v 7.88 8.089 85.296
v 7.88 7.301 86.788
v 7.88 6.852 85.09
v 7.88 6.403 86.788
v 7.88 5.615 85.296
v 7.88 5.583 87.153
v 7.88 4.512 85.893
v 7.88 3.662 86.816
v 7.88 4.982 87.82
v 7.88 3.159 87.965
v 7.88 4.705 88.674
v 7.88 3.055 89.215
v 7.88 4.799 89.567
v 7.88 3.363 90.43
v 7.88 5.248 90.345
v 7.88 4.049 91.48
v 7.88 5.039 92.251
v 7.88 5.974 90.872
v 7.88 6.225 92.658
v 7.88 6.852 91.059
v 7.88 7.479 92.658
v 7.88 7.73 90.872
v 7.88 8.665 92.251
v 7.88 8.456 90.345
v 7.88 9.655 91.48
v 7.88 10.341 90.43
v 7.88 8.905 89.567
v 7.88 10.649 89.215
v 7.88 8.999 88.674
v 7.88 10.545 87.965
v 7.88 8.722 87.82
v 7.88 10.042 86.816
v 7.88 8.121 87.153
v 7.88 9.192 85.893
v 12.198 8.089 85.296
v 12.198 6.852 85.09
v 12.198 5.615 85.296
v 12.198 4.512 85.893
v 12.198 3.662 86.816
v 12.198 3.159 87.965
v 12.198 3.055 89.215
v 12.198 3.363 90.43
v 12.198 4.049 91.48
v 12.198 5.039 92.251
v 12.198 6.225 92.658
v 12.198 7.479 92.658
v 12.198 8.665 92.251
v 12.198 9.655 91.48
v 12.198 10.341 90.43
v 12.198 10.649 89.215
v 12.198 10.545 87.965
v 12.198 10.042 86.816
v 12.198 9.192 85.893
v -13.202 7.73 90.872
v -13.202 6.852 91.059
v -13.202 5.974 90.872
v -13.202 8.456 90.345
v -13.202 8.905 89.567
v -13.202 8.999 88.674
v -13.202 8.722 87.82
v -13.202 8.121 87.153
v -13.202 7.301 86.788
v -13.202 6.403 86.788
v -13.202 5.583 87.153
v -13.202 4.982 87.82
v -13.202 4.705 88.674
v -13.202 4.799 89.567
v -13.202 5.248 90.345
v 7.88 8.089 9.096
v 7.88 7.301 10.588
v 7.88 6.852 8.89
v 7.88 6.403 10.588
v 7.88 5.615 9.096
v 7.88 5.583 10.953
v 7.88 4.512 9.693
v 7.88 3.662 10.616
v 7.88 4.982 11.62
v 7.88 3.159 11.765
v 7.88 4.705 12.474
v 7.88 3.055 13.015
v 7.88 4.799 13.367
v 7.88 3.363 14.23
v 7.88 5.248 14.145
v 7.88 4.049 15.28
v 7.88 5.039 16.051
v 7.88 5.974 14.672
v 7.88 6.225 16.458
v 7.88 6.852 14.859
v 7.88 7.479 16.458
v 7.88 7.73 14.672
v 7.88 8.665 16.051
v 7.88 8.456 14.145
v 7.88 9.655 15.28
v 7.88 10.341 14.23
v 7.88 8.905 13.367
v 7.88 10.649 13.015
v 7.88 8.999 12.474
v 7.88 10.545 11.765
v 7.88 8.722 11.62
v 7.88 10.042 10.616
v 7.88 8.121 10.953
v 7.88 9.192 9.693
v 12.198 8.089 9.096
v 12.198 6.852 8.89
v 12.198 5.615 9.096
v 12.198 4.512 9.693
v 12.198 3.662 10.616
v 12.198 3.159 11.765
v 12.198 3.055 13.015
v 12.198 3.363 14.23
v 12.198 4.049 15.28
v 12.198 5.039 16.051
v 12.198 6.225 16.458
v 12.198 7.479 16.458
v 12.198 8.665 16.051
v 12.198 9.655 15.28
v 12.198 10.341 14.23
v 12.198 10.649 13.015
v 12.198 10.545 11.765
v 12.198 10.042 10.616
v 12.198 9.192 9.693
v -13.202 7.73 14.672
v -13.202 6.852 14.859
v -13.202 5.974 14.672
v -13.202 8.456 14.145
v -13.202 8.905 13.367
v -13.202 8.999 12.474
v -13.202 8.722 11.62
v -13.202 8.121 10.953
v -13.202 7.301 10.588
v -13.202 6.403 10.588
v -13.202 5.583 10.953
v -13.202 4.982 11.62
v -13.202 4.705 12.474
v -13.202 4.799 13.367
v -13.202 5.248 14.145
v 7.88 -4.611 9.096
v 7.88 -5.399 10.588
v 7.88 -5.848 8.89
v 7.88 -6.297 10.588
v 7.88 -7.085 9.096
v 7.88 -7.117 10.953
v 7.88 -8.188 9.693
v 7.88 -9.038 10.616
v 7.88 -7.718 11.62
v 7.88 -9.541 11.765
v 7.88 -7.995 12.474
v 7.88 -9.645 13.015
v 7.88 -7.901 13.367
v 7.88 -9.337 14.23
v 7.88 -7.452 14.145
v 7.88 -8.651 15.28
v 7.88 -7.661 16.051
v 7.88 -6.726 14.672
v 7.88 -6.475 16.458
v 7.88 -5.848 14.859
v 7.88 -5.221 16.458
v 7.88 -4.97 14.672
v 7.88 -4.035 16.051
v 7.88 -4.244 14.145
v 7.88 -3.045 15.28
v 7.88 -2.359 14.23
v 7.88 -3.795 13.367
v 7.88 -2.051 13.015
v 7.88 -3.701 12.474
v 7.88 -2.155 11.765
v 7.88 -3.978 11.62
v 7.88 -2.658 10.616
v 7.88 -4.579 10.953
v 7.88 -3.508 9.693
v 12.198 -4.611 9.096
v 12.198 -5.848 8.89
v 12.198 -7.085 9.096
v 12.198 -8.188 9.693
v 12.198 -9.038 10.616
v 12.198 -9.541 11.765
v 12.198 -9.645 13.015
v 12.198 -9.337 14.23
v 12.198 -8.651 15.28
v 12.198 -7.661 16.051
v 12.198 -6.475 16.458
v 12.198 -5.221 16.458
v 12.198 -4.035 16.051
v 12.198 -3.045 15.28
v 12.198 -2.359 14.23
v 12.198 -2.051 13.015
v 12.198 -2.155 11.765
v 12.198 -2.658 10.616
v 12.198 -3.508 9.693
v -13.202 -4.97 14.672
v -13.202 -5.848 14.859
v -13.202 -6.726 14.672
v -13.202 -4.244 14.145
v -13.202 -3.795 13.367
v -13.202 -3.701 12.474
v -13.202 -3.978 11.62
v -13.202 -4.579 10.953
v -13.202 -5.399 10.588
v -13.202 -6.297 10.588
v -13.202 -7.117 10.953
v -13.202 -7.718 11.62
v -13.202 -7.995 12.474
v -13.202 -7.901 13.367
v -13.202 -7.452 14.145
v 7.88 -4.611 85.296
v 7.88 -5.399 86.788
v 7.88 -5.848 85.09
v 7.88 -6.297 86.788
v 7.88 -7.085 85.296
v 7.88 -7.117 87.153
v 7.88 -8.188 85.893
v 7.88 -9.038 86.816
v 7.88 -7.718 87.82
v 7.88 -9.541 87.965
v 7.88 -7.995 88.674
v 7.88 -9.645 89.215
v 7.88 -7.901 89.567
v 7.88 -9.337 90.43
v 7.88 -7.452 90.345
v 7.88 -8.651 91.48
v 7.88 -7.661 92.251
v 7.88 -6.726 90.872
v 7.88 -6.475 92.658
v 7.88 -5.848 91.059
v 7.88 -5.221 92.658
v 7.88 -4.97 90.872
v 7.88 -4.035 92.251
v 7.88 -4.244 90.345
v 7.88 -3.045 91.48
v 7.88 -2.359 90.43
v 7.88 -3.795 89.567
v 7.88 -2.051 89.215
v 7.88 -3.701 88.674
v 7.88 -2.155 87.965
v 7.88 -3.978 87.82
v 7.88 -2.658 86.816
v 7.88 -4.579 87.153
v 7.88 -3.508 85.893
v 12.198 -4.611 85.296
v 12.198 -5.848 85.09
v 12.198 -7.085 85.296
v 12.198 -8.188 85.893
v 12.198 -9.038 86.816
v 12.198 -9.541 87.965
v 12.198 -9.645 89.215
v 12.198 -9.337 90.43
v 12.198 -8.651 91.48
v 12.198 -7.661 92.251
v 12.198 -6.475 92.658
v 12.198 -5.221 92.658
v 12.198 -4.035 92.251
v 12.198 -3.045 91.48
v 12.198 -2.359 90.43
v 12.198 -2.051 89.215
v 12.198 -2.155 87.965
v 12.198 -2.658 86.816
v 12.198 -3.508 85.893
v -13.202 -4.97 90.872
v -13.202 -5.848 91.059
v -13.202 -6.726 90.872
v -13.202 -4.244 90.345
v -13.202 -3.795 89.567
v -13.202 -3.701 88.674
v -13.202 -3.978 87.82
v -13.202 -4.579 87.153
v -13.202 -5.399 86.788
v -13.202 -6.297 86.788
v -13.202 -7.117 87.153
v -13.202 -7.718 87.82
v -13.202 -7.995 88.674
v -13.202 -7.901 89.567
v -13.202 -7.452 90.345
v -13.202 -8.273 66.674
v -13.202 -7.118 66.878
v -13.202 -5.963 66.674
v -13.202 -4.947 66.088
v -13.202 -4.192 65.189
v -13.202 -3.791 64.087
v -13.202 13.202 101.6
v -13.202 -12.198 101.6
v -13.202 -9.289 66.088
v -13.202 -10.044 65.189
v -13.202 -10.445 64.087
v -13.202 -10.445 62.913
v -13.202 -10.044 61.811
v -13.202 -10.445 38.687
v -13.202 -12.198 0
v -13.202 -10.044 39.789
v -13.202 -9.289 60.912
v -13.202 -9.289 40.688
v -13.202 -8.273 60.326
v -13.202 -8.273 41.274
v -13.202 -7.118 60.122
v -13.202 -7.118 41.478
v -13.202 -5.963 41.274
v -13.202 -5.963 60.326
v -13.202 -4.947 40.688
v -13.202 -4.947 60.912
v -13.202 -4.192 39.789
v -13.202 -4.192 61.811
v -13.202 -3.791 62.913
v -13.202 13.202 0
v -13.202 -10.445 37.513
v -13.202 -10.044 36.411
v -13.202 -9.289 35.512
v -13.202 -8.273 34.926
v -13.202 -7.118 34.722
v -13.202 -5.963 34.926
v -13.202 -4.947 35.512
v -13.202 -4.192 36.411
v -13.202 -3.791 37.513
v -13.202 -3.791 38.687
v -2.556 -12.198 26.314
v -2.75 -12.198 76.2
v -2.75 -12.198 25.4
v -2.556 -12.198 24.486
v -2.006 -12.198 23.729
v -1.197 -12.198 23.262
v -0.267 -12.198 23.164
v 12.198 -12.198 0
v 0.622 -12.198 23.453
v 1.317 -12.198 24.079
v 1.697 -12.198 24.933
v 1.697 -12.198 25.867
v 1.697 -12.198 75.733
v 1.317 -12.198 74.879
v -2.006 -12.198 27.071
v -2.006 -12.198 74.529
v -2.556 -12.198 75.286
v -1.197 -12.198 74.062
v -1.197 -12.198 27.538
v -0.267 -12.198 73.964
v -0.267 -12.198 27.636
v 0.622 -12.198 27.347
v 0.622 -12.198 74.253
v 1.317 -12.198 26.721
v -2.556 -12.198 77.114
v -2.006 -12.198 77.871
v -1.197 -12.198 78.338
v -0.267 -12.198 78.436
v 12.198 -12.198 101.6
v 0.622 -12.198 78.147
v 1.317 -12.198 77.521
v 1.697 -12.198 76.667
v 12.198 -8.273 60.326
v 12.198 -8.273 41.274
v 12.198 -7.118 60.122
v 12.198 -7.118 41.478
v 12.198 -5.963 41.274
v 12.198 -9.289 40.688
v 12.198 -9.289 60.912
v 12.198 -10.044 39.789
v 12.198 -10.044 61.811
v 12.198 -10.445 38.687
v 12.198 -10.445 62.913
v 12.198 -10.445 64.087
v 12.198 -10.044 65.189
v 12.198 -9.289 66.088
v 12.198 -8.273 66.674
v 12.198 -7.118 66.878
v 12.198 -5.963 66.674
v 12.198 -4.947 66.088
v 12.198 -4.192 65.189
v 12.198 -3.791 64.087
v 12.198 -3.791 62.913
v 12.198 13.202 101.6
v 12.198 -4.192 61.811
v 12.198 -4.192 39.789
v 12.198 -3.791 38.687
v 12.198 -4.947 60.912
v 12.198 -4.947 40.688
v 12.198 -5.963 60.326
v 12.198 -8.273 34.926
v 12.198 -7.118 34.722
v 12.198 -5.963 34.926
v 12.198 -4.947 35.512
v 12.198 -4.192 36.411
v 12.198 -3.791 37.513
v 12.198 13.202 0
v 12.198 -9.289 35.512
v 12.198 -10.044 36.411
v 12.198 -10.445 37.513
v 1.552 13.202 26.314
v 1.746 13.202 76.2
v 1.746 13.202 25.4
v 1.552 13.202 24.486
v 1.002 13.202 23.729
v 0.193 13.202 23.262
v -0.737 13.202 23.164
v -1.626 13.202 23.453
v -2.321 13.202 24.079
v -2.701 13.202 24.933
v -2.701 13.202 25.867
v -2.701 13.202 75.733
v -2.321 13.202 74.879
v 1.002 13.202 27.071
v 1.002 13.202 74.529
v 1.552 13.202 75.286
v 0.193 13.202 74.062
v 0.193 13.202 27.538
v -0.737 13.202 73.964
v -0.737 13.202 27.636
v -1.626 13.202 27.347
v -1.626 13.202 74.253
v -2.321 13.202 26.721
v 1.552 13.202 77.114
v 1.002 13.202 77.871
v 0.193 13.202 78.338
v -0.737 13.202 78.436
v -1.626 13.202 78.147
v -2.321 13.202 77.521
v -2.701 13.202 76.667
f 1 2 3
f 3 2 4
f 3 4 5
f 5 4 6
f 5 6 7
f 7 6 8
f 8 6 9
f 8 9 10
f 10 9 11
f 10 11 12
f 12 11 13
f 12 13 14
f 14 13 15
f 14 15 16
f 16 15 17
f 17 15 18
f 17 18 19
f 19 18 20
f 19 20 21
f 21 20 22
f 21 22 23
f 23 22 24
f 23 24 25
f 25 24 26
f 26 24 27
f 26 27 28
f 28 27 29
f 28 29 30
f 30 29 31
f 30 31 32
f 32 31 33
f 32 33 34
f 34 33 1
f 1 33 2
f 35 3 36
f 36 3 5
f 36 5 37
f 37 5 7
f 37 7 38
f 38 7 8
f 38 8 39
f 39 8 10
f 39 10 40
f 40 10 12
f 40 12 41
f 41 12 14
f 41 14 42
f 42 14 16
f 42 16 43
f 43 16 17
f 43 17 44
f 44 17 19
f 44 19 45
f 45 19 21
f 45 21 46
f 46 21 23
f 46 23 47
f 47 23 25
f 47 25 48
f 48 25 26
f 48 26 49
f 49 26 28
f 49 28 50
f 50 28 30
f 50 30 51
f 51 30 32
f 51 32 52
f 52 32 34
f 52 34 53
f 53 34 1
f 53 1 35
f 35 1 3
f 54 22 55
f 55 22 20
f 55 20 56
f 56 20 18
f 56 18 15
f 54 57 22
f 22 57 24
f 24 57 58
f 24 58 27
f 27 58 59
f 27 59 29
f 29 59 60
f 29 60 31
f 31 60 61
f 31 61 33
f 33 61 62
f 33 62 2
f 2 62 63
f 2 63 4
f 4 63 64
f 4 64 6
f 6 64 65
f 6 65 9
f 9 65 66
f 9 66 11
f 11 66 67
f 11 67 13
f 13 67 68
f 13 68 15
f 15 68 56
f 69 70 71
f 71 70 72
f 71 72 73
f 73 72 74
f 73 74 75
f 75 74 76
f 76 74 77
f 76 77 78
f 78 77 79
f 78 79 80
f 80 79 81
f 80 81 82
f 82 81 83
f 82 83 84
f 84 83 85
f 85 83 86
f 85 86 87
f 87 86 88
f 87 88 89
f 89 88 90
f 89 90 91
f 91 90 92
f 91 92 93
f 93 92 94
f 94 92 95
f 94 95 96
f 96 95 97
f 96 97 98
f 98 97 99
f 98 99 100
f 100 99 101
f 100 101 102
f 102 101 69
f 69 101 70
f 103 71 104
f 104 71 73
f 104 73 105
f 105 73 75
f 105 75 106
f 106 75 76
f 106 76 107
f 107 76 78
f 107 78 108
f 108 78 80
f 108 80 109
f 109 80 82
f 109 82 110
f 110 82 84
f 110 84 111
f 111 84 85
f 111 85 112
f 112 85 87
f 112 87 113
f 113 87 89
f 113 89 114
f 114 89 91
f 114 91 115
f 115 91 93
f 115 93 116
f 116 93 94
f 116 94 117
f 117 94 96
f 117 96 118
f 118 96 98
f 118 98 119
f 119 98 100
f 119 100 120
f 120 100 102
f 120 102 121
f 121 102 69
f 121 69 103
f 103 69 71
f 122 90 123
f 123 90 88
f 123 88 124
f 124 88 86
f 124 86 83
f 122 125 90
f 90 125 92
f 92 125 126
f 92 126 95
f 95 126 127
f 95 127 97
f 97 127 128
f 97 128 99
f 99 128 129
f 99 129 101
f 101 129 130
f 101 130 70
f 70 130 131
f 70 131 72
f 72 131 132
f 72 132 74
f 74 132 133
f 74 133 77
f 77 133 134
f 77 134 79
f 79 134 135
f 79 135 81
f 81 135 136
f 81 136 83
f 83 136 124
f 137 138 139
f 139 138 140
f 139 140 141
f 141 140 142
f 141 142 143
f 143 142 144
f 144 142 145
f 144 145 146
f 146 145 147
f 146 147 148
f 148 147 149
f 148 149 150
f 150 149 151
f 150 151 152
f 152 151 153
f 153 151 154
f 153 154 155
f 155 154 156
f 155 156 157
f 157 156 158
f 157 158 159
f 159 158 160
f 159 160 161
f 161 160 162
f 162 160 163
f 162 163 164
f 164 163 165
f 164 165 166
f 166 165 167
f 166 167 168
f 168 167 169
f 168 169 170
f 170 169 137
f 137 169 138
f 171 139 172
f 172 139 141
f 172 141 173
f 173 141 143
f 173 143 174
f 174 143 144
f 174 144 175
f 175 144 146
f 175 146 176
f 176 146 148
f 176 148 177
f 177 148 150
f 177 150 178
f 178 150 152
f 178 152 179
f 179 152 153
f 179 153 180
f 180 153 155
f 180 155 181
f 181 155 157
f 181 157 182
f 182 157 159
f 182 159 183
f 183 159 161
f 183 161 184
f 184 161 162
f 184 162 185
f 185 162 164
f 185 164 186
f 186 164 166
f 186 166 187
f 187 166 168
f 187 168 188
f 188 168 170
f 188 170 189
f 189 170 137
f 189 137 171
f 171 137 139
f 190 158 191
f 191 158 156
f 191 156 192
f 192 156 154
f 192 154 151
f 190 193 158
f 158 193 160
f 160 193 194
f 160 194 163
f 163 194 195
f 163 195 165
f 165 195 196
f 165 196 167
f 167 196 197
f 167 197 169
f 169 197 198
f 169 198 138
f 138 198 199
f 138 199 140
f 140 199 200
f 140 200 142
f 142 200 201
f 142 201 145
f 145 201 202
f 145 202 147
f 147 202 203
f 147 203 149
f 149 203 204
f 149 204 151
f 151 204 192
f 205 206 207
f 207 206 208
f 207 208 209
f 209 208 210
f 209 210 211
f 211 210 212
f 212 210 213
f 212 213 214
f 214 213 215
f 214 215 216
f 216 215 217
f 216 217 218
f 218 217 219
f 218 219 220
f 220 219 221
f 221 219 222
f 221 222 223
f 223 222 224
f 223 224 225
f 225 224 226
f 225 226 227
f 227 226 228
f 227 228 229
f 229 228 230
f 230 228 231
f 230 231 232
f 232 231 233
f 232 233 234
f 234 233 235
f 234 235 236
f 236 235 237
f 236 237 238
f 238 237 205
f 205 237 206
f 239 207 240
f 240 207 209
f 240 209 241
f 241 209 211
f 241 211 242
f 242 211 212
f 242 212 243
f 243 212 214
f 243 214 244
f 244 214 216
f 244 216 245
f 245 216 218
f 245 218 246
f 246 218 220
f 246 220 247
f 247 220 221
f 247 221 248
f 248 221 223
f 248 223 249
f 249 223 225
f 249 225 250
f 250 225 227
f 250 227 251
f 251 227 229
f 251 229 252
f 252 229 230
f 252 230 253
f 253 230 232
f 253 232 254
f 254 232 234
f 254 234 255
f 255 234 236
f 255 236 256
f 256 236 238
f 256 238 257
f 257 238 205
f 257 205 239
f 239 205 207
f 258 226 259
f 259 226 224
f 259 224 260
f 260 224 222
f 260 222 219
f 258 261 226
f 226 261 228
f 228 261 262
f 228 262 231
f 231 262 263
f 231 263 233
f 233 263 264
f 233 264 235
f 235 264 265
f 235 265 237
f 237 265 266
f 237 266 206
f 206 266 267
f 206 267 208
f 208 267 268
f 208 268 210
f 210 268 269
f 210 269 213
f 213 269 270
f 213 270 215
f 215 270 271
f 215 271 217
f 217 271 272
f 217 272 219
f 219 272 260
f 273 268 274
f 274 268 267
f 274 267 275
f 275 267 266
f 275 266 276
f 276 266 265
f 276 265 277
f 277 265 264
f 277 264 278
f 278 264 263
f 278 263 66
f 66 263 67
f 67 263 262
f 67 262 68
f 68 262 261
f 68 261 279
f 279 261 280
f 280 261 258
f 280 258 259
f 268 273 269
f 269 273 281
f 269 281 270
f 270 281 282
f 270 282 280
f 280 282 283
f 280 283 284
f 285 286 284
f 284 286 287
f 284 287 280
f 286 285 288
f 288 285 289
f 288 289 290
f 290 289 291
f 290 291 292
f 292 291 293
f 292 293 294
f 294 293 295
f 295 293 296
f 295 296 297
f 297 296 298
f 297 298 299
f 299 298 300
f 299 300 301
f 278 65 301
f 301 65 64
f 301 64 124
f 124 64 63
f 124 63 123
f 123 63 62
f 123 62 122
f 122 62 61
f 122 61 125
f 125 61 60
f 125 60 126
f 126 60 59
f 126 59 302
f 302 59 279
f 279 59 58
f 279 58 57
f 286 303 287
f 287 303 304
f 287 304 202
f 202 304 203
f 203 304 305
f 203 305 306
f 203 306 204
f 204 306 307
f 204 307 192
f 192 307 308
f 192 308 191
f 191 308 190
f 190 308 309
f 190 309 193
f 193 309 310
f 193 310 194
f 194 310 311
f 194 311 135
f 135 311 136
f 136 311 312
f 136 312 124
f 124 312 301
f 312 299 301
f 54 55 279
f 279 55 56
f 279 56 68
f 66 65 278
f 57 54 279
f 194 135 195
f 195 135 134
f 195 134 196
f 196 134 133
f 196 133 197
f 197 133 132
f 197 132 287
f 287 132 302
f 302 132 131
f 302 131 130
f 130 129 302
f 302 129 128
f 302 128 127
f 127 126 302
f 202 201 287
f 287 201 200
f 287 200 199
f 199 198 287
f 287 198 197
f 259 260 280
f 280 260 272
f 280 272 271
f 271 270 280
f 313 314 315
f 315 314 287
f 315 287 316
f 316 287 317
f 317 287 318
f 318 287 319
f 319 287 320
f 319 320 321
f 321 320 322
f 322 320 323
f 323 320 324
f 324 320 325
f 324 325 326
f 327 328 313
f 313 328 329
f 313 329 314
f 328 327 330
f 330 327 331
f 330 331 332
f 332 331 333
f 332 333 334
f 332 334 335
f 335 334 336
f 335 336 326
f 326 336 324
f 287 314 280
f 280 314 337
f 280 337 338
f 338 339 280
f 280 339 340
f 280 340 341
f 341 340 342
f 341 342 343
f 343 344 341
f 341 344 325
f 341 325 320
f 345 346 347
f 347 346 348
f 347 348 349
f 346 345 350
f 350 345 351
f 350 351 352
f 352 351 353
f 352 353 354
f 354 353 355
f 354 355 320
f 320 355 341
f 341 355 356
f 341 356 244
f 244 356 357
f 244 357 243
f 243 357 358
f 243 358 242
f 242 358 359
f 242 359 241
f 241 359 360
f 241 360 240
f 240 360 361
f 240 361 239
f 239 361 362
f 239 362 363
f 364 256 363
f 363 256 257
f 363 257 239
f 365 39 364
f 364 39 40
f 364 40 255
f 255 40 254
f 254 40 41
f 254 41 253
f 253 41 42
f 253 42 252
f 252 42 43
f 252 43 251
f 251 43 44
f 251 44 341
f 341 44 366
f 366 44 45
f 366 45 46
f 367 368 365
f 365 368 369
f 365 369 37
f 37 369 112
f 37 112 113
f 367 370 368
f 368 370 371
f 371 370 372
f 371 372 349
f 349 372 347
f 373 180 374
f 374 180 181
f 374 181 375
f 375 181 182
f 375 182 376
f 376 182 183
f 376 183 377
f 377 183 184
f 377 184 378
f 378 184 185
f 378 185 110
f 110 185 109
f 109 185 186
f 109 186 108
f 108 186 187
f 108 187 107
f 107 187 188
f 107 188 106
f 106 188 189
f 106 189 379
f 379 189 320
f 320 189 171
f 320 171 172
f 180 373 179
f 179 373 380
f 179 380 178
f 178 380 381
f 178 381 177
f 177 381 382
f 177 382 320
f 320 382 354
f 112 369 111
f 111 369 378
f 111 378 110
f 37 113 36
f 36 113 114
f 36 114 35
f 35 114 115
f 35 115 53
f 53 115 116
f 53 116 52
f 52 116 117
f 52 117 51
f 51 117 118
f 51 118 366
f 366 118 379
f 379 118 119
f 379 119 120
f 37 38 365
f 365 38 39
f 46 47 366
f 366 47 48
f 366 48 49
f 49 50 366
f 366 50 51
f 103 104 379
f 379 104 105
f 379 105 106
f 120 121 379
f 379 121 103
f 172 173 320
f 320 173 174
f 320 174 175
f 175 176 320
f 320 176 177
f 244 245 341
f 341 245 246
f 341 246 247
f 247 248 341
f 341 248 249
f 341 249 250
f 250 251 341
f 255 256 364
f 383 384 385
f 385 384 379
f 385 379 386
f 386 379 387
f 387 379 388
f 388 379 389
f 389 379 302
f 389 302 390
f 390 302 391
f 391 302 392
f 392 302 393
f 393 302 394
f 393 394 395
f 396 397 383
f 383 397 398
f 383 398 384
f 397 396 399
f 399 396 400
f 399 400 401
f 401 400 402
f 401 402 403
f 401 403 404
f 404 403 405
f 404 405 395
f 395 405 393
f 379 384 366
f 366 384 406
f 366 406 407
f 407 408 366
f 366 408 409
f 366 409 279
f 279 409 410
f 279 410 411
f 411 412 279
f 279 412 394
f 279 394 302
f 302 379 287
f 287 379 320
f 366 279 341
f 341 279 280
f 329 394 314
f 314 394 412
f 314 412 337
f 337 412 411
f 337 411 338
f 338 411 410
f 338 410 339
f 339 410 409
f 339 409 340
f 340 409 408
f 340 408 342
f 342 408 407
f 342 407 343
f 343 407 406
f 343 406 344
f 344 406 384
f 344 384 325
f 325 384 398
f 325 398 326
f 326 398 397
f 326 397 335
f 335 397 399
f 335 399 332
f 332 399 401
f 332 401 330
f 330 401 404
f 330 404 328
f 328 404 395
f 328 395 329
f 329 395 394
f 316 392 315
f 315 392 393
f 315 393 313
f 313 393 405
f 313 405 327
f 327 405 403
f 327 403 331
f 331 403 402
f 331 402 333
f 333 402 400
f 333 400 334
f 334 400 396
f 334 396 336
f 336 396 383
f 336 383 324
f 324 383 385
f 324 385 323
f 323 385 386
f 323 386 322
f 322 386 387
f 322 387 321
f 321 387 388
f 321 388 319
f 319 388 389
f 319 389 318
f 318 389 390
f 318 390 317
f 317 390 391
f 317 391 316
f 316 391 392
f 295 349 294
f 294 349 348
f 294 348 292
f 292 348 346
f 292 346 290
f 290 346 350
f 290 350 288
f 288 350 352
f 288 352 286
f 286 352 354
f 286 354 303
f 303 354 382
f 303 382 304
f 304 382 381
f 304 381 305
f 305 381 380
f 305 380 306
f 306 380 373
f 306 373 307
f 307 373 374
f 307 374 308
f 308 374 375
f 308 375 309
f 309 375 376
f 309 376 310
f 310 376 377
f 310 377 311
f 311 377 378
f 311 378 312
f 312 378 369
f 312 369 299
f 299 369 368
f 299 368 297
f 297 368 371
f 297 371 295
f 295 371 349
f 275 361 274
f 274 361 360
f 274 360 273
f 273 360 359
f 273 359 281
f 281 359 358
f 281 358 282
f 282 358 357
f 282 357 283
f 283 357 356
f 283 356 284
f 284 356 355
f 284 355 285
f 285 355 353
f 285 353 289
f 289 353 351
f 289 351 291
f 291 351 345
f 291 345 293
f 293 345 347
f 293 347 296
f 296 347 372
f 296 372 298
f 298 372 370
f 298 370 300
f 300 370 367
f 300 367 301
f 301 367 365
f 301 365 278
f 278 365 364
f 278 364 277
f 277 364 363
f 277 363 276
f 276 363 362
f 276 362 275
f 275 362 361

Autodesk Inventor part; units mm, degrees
ref_plane "YZ Plane" through (0, 0, 0) normal (1, 0, 0) x (0, 1, 0)
ref_plane "XZ Plane" through (0, 0, 0) normal (0, 1, 0) x (-1, 0, 0)
ref_plane "XY Plane" through (0, 0, 0) normal (0, 0, 1) x (1, 0, 0)
sketch "Sketch1" plane through (0, 0, 0) normal (0, 0, 1) x (1, 0, 0)
  line L0 (-13.202, 13.202) -> (12.198, 13.202)
  line L1 (12.198, 13.202) -> (12.198, -12.198)
  line L2 (12.198, -12.198) -> (-13.202, -12.198)
  line L3 (-13.202, -12.198) -> (-13.202, 13.202)
  point P0 (0, 0)
  dimension "d0" = 25.4
  dimension "d1" = 25.4
extrude "Extrusion1" add sketch "Sketch1" along normal blind 101.6
sketch "Sketch6" plane through (12.198, 13.202, 101.6) normal (1, 0, 0) x (0, 0, -1)
  line L0 (101.6, 0) -> (101.6, -25.4) projected
  line L1 (101.6, -25.4) -> (0, -25.4) projected
  line L2 (101.6, 0) -> (101.6, -25.4) projected
  line L3 (101.6, 0) -> (0, 0) projected
  line L4 (0, -25.4) -> (0, 0) projected
  line L5 (0, -25.4) -> (0, 0) projected
  point P0 (101.6, -13.202)
  point P1 (88.9, -6.35)
  point P2 (88.9, -19.05)
  point P3 (101.6, -19.05)
  point P4 (101.6, -6.35)
  point P5 (12.7, -6.35)
  point P6 (12.7, -19.05)
  point P7 (0, -19.05)
  point P8 (0, -6.35)
  dimension "d51" = 12.7
  dimension "d52" = 6.35
  dimension "d53" = 12.7
  dimension "d54" = 6.35
  dimension "d55" = 12.7
  dimension "d56" = 6.35
  dimension "d57" = 12.7
  dimension "d58" = 6.35
hole "Hole5" at (12.198, 6.852, 12.7) at (12.198, -5.848, 12.7) at (12.198, 6.852, 88.9) at (12.198, -5.848, 88.9) direction (-1, 0, 0) diameter 4.318 end through all counterbore diameter 7.62 counterbore depth 4.318
sketch "Sketch9" plane through (-13.202, 13.202, 0) normal (0, 1, 0) x (1, 0, 0)
  line L0 (0, 0) -> (0, -101.6) projected
  line L1 (0, 0) -> (25.4, 0) projected
  line L2 (25.4, -101.6) -> (0, -101.6) projected
  point P0 (13.202, 0)
  point P1 (12.7, -25.4)
  point P2 (12.7, -76.2)
  dimension "d101" = 12.7
  dimension "d102" = 12.7
  dimension "d103" = 25.4
  dimension "d104" = 25.4
hole "Hole6" at (-0.502, 13.202, 25.4) at (-0.502, 13.202, 76.2) direction (0, -1, 0) diameter 4.4958 end through all clearance for "Flat Head Machine Screw (82)" size "#8" standard "Ansi Unified Screw Threads"
sketch "Sketch10" plane through (12.198, -12.198, 0) normal (1, 0, 0) x (0, 0, -1)
  line L0 (-101.6, 0) -> (-101.6, 25.4) projected
  line L1 (0, 25.4) -> (0, 0) projected
  line L2 (0, 0) -> (-101.6, 0) projected
  point P0 (0, 12.198)
  point P1 (-63.5, 5.08)
  point P2 (-38.1, 5.08)
  dimension "d112" = 38.1
  dimension "d113" = 38.1
  dimension "d114" = 5.08
  dimension "d115" = 5.08
hole "Hole7" at (12.198, -7.118, 63.5) at (12.198, -7.118, 38.1) direction (-1, 0, 0) diameter 6.7564 end through all clearance for "Flat Head Machine Screw (82)" size "1/4" standard "Ansi Unified Screw Threads"
properties part number "BackEndSlider"
